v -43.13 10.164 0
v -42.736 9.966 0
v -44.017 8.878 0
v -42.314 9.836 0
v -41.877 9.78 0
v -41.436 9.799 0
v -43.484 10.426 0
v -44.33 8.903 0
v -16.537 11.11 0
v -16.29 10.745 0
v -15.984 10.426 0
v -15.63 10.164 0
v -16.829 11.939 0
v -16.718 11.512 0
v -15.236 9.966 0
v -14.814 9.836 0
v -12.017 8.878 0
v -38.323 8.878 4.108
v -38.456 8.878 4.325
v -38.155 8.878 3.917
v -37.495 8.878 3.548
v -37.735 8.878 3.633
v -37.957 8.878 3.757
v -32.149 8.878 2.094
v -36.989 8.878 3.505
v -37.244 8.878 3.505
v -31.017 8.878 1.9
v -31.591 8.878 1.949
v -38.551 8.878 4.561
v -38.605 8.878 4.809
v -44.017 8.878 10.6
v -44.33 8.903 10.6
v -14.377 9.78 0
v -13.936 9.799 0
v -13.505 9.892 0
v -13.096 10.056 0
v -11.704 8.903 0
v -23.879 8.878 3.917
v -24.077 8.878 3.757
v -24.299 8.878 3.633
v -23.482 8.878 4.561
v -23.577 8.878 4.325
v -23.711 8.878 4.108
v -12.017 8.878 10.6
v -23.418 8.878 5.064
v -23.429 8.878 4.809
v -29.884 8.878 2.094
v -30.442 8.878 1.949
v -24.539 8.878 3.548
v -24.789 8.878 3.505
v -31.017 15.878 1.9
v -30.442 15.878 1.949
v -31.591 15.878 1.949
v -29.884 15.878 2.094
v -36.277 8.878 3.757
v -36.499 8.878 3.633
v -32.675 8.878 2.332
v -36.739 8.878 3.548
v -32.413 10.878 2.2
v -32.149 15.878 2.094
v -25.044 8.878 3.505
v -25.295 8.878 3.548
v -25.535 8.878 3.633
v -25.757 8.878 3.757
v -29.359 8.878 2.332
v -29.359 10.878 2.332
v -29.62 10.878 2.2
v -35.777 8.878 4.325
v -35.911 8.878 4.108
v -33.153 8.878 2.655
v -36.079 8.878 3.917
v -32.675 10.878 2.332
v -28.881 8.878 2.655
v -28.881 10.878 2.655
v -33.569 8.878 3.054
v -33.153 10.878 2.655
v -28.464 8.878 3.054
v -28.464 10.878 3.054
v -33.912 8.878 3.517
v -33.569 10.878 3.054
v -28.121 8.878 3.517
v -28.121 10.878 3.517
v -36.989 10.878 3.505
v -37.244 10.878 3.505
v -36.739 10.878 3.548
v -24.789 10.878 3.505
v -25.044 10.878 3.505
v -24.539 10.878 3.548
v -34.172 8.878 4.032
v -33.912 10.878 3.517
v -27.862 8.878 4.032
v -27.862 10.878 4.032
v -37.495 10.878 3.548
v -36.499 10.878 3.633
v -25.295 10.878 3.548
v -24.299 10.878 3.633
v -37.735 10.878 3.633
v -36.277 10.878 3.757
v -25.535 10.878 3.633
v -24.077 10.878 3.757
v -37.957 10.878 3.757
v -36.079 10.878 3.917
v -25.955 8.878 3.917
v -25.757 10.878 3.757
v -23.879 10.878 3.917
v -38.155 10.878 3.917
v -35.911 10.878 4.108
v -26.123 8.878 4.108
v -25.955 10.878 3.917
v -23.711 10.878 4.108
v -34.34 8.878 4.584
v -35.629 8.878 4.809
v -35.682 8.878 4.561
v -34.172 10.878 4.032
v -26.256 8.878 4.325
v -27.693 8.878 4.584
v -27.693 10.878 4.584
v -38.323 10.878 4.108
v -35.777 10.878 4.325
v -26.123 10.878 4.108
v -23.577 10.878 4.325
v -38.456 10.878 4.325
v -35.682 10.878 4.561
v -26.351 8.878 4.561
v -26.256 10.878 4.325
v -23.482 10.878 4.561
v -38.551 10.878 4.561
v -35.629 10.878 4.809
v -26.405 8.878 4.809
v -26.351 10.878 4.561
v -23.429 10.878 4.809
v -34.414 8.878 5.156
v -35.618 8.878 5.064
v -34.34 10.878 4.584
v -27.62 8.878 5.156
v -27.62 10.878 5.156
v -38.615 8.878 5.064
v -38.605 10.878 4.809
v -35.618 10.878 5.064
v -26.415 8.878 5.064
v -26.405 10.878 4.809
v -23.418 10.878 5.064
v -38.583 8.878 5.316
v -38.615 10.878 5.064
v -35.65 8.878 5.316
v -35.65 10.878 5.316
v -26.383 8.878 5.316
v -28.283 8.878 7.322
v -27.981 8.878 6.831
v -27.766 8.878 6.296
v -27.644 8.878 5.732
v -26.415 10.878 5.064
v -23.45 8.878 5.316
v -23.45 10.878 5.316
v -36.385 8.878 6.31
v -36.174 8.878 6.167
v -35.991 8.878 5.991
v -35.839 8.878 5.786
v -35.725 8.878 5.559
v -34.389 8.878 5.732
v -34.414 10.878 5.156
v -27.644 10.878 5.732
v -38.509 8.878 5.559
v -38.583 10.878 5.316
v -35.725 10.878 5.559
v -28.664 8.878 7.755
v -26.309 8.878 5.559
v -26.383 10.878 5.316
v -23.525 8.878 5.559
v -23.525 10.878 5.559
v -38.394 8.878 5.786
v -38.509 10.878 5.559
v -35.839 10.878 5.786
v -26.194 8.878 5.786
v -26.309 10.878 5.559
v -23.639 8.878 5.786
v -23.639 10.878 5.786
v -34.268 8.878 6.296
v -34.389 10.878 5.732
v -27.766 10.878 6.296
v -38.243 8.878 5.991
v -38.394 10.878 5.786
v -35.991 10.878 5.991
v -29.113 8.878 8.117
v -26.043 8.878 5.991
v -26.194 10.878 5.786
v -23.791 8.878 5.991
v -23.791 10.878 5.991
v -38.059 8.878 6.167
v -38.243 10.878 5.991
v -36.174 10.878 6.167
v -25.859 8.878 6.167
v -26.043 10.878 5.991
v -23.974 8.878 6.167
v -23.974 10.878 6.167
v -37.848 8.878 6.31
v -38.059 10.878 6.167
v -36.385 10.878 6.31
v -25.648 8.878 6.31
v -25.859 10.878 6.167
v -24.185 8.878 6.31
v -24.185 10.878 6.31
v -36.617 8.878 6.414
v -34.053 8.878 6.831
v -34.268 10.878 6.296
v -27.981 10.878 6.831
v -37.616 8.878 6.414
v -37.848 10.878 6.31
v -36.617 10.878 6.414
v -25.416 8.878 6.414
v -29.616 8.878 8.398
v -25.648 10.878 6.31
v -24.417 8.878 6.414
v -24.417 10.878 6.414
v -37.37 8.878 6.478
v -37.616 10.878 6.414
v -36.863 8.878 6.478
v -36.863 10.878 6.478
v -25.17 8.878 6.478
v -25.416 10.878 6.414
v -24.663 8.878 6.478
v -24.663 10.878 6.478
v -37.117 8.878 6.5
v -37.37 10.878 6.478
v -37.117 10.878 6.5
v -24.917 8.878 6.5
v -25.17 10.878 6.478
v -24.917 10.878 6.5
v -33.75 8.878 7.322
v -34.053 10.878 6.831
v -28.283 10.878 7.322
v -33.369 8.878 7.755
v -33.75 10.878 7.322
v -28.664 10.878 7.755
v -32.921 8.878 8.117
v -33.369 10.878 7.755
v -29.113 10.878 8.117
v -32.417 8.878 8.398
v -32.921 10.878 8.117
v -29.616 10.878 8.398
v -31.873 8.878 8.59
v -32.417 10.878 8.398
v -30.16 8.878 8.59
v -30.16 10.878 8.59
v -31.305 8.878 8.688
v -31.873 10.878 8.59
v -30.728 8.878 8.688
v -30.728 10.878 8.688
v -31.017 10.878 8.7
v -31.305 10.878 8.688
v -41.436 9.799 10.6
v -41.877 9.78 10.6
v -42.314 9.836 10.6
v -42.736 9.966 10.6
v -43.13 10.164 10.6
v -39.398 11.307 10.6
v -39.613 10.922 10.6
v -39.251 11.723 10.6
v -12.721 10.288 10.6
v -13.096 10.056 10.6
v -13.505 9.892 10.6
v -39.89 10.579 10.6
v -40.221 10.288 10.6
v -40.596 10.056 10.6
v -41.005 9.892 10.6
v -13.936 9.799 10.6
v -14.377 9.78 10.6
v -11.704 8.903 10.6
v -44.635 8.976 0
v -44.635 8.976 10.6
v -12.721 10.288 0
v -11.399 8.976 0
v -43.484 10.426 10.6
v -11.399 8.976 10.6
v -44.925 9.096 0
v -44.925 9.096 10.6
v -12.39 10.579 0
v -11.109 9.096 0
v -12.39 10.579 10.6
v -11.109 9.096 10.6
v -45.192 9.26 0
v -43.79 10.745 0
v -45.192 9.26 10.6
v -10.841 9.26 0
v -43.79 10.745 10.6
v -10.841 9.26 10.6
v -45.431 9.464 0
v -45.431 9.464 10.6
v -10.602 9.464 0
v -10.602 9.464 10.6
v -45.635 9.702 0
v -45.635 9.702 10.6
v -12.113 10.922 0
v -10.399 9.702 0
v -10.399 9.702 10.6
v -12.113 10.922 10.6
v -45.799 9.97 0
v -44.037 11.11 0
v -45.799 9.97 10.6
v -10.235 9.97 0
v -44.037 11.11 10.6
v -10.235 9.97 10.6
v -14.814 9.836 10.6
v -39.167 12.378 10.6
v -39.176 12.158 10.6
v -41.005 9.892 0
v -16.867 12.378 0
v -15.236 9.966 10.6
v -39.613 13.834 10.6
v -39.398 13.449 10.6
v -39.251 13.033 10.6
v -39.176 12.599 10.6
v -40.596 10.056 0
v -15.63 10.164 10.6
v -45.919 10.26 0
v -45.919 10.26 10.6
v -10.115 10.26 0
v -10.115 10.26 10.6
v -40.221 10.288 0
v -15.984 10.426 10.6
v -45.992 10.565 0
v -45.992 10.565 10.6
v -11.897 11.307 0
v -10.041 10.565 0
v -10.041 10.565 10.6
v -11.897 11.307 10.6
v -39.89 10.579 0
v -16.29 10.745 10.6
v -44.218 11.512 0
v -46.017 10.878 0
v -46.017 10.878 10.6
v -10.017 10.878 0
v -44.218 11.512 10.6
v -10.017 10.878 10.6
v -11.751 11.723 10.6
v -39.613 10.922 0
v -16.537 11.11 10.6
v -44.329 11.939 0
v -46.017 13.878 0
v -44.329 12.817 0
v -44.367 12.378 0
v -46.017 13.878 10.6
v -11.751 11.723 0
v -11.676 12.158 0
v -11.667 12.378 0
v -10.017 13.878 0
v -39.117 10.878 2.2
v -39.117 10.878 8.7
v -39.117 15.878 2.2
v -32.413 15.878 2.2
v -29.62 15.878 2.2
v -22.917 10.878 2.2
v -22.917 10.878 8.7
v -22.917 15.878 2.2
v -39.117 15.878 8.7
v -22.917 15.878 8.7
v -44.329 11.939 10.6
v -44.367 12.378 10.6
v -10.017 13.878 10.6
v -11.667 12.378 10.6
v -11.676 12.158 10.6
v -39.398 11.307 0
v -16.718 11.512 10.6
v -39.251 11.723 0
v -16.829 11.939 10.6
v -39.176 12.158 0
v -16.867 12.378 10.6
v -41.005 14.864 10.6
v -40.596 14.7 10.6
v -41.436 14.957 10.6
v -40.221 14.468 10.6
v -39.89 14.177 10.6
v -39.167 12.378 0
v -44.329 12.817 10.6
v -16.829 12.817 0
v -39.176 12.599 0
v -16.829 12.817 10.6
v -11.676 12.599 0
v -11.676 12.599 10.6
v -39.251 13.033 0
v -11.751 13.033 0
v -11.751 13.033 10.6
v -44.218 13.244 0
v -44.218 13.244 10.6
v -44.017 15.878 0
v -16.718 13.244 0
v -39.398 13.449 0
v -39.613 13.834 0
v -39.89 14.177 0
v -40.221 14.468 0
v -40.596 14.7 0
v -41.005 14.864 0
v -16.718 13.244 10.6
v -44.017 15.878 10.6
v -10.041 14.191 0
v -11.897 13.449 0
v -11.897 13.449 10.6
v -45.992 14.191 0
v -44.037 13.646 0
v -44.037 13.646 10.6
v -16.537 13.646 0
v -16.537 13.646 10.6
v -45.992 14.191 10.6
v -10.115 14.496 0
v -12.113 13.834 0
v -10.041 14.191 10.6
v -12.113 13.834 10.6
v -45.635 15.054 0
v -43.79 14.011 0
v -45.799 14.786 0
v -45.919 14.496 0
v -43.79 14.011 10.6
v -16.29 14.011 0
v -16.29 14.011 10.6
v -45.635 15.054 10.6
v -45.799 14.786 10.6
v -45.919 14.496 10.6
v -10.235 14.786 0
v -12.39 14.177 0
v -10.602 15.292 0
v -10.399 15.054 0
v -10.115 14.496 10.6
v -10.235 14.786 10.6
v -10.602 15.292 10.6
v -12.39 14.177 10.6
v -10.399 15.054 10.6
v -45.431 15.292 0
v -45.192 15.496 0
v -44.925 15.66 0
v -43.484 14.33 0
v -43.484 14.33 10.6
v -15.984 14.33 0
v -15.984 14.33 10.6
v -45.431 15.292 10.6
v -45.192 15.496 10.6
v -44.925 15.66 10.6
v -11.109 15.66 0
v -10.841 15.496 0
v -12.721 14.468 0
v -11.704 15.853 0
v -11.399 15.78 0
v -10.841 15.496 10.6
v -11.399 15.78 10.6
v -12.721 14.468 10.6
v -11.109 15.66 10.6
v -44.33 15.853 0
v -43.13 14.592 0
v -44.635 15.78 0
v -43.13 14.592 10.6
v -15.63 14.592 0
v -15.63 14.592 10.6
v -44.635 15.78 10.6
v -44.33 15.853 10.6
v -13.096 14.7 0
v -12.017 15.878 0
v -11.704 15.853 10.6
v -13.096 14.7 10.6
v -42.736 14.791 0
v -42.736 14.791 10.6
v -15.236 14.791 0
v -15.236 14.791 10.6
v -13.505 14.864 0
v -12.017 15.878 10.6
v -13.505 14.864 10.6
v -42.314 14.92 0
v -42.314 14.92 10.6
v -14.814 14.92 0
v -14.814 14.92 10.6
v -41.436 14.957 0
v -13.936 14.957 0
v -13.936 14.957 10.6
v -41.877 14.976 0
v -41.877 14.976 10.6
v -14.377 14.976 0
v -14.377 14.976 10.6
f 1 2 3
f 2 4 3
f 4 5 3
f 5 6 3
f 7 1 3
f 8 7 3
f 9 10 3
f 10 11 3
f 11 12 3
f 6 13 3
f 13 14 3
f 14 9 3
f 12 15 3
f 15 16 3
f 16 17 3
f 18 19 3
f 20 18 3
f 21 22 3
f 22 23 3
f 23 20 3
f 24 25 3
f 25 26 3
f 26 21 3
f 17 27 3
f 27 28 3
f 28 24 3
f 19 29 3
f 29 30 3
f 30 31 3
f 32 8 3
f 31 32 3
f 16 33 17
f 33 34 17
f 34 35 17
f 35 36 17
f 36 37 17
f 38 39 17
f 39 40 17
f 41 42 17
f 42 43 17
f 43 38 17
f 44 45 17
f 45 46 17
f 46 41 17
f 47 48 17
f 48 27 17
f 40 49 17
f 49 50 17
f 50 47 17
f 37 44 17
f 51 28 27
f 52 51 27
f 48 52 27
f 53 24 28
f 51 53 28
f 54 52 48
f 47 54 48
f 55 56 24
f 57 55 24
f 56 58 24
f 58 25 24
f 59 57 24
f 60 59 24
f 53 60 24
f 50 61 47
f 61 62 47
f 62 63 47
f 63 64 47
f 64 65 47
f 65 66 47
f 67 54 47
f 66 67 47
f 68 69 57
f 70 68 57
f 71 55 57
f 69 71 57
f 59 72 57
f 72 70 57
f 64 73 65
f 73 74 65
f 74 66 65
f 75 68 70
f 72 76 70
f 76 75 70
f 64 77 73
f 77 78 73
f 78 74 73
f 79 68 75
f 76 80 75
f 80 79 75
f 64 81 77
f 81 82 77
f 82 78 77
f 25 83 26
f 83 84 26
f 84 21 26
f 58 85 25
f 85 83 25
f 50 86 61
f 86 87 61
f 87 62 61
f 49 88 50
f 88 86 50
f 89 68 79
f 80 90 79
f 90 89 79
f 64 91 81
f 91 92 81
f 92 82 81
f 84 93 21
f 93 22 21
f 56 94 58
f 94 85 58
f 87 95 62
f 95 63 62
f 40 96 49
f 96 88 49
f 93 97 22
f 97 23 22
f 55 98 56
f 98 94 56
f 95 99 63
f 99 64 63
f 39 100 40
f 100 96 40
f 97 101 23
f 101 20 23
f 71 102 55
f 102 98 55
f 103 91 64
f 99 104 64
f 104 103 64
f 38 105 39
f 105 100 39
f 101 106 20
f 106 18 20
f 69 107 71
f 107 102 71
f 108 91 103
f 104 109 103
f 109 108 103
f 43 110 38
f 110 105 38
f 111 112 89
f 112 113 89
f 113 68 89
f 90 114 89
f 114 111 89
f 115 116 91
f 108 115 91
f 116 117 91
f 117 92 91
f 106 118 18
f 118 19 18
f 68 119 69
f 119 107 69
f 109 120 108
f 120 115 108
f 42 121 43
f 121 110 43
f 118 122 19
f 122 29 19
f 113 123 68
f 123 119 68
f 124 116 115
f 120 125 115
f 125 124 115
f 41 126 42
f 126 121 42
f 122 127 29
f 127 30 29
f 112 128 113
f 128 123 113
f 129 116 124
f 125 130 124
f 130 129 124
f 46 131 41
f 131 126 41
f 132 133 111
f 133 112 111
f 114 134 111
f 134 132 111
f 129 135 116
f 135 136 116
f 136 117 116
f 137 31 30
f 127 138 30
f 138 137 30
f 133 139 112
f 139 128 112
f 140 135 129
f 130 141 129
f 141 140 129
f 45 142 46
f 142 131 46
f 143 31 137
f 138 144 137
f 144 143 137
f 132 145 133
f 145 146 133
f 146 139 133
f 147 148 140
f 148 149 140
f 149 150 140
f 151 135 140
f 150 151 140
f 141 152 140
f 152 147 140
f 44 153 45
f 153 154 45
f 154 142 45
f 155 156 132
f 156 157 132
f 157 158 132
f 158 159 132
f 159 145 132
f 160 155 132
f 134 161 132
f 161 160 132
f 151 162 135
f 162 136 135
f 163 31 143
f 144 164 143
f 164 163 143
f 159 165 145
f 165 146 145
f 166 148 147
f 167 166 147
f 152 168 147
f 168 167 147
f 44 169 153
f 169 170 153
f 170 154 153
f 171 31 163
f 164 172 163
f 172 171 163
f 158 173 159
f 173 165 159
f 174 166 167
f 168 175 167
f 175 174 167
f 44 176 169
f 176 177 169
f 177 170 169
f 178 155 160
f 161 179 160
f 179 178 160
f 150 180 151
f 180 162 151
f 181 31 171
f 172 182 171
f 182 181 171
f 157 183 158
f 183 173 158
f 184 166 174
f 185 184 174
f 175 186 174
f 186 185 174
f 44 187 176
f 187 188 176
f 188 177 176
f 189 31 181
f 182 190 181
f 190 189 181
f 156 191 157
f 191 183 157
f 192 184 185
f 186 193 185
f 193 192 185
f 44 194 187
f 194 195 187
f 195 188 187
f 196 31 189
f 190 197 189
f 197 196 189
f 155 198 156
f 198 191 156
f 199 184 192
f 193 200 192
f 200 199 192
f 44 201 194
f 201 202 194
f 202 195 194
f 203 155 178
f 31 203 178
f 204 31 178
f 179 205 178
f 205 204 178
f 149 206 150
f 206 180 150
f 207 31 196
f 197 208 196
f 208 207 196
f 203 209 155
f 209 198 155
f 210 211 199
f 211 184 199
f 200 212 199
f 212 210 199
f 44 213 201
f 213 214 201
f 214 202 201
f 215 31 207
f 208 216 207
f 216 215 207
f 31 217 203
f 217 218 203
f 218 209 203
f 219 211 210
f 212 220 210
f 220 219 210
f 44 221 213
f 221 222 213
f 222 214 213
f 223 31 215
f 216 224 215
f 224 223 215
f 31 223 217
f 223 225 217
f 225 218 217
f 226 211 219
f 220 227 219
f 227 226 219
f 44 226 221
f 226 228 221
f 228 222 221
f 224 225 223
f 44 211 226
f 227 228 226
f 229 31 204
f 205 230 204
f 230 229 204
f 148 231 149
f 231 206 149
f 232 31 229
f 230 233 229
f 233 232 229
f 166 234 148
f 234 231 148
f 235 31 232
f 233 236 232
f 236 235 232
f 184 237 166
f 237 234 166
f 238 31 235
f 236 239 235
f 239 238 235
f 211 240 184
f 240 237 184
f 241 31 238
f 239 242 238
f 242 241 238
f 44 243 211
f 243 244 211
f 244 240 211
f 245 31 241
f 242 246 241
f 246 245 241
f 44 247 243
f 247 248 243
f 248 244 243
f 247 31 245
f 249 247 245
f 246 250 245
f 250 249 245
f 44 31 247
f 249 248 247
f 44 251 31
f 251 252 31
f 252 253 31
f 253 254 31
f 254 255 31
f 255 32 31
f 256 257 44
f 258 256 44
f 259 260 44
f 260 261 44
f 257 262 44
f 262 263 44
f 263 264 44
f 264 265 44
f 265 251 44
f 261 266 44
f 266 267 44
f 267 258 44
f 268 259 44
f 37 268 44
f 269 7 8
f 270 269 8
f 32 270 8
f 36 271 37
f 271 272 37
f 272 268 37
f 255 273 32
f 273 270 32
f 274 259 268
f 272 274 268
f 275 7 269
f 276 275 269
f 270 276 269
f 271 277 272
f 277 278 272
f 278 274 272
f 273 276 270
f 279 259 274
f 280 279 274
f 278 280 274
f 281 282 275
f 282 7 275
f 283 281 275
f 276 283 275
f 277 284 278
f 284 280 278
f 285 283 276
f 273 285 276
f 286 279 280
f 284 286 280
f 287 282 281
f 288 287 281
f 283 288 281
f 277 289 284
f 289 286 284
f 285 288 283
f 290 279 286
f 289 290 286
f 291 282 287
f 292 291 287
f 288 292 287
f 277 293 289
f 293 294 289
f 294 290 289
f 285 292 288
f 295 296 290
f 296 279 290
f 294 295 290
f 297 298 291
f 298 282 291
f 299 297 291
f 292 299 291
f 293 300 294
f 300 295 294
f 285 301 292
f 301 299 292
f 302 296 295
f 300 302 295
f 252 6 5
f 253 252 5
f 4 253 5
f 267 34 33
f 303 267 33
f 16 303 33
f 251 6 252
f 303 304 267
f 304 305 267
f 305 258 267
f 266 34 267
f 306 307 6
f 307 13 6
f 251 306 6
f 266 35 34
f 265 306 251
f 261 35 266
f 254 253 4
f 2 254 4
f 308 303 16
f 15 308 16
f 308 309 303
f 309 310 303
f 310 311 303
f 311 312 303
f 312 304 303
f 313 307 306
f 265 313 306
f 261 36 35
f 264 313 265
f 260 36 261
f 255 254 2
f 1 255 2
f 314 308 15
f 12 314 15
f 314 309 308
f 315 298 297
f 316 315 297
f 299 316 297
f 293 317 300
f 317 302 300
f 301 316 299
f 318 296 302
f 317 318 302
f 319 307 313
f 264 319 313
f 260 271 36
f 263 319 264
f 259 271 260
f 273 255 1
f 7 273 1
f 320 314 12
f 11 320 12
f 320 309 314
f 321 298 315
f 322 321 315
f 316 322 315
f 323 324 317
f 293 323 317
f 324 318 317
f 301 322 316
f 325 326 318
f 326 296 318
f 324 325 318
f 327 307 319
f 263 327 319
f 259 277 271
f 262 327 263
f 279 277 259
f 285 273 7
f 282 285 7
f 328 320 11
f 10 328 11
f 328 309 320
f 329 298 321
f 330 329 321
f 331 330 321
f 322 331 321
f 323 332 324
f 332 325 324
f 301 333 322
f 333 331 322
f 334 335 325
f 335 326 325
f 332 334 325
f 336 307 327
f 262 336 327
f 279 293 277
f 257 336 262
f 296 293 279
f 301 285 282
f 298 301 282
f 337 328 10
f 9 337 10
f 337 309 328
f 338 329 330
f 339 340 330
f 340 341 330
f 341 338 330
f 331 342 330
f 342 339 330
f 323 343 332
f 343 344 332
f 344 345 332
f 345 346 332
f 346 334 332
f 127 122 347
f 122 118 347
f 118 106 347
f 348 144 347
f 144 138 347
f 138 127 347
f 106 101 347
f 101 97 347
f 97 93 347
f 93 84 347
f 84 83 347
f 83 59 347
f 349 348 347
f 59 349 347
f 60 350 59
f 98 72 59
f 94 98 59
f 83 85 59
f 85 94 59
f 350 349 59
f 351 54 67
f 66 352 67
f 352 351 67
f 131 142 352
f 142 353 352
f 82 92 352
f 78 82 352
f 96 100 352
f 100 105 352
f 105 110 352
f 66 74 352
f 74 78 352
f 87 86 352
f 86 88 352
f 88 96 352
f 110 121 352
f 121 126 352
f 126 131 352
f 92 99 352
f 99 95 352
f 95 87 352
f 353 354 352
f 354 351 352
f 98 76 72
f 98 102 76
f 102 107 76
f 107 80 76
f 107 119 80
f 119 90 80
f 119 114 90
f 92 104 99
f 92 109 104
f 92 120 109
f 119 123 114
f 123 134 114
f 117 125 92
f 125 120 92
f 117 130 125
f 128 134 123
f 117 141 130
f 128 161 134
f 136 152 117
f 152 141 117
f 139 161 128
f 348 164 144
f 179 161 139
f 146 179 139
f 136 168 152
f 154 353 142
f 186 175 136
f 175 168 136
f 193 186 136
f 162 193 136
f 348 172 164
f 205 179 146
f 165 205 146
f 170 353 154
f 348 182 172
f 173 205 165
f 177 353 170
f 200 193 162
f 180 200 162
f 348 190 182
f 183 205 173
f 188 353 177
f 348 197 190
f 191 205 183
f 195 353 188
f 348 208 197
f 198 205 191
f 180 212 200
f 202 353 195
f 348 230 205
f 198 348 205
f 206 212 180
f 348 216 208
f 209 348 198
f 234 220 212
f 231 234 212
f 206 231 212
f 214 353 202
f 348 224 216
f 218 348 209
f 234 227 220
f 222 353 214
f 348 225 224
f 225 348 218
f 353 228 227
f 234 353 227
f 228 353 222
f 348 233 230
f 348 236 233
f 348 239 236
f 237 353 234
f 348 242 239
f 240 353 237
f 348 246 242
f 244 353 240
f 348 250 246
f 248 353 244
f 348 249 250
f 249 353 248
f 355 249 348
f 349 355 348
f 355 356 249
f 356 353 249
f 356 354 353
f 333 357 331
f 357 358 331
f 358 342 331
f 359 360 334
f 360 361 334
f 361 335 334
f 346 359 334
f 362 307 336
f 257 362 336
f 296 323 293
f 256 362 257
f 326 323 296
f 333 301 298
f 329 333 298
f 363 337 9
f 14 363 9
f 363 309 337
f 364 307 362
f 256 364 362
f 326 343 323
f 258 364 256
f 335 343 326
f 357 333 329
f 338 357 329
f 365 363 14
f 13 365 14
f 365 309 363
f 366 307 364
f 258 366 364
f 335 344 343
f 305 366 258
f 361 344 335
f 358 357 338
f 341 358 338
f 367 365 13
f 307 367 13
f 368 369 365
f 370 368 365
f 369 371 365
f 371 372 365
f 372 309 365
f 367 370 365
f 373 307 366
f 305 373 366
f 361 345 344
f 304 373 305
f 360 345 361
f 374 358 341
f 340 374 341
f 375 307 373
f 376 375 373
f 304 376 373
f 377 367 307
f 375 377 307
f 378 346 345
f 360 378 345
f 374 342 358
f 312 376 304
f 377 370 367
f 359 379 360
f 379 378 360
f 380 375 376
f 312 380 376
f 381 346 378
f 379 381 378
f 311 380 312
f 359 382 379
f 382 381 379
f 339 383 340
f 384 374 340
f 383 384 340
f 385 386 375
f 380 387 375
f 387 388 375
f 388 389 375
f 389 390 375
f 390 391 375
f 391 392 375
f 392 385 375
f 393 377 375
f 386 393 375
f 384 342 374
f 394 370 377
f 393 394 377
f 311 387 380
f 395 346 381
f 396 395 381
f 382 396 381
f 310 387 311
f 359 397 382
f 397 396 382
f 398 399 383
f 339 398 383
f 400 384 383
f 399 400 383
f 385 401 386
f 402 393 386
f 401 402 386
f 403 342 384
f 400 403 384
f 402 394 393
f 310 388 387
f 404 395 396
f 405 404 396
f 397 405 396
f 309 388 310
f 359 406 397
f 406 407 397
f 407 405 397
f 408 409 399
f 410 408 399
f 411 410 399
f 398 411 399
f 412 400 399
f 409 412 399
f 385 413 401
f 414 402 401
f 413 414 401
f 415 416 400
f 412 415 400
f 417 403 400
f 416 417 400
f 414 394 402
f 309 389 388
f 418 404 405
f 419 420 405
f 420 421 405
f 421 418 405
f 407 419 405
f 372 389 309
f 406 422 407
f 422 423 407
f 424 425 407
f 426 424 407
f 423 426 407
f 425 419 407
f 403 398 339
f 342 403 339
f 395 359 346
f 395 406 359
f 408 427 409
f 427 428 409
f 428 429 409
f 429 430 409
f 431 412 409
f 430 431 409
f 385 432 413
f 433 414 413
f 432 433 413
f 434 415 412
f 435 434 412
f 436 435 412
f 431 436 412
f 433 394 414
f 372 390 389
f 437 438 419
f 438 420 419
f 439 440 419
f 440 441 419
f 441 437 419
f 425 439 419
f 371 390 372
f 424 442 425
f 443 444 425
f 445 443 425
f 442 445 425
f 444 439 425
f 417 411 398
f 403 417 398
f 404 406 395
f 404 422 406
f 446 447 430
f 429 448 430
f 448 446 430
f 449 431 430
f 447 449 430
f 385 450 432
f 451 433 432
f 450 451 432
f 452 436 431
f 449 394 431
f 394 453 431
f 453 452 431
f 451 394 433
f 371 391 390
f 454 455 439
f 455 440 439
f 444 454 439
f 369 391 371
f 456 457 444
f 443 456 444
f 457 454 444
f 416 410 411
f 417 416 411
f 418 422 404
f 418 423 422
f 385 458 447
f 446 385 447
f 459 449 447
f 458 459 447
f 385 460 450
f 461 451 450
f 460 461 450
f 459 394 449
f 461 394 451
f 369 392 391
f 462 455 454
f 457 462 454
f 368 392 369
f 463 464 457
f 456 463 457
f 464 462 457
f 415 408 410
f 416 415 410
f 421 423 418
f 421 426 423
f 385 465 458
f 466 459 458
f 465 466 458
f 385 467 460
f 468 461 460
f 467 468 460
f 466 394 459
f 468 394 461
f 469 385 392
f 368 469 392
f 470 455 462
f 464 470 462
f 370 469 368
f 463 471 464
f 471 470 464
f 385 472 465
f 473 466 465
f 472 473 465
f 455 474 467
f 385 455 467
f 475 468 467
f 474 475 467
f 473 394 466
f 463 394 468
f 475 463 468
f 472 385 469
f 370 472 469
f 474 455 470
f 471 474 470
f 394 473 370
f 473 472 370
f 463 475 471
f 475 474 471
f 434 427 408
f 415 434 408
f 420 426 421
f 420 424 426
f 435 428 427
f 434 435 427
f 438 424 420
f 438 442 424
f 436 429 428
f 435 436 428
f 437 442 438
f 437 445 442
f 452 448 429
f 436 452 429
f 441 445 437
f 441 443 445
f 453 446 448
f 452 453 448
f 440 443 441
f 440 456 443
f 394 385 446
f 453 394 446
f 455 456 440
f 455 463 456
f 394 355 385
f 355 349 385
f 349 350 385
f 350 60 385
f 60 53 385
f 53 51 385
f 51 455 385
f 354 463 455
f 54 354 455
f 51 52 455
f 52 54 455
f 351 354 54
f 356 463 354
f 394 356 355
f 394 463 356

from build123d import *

# Parameters (mm, degrees)
CROQUIS1_W              = 36
CROQUIS1_H              = 7
CROQUIS1_R              = 2.6
SALIENTE_EXTRUIR1_DEPTH = 10.6
CROQUIS5_R              = 3.4
CORTAR_EXTRUIR4_DEPTH   = 7
REDONDEO1_R             = 2
CROQUIS7_W              = 16.2
CROQUIS7_H              = 6.4
CORTAR_EXTRUIR5_DEPTH   = 5
CROQUIS8_R              = 1.5
CORTAR_EXTRUIR6_DEPTH   = 2
CROQUIS9_W              = 16.2
CROQUIS9_H              = 6.2
CORTAR_EXTRUIR7_DEPTH   = 5


with BuildPart() as part:
    # Croquis1 → Saliente-Extruir1 (new body)
    with BuildSketch(Plane.XY):
        with Locations((-28.016694491, 12.37804878)):
            Rectangle(CROQUIS1_W, CROQUIS1_H)
        with Locations((-41.766694491, 12.37804878)):
            Circle(CROQUIS1_R, mode=Mode.SUBTRACT)
        with Locations((-14.266694491, 12.37804878)):
            Circle(CROQUIS1_R, mode=Mode.SUBTRACT)
    extrude(amount=SALIENTE_EXTRUIR1_DEPTH)

    # Croquis5 → Cortar-Extruir4 (cut)
    with BuildSketch(Plane.XZ.offset(-8.87804878)):
        with Locations(Location((-31.016694491, 5.3, 0), (0, 0, 270))):
            Circle(CROQUIS5_R)
    extrude(amount=-CORTAR_EXTRUIR4_DEPTH, mode=Mode.SUBTRACT)

    # Redondeo1
    redondeo1_edges = [part.edges().sort_by_distance(p)[0] for p in [
        (-46.016694491, 15.87804878, 5.3),
        (-10.016694491, 15.87804878, 5.3),
        (-10.016694491, 8.87804878, 5.3),
        (-46.016694491, 8.87804878, 5.3),
    ]]
    fillet(redondeo1_edges, radius=REDONDEO1_R)

    # Croquis7 → Cortar-Extruir5 (cut)
    with BuildSketch(Plane(origin=(0, 15.87804878, 0), x_dir=(1, 0, 0), z_dir=(0, 1, 0))):
        with Locations((-31.016694491, -5.5)):
            Rectangle(CROQUIS7_W, CROQUIS7_H)
    extrude(amount=-CORTAR_EXTRUIR5_DEPTH, mode=Mode.SUBTRACT)

    # Croquis8 → Cortar-Extruir6 (cut)
    with BuildSketch(Plane(origin=(0, 10.87804878, 0), x_dir=(1, 0, 0), z_dir=(0, 1, 0))):
        with Locations(Location((-24.916694491, -5, 0), (0, 0, 270))):
            Circle(CROQUIS8_R)
        with Locations(Location((-37.116694491, -5, 0), (0, 0, 270))):
            Circle(CROQUIS8_R)
    extrude(amount=-CORTAR_EXTRUIR6_DEPTH, mode=Mode.SUBTRACT)

    # Croquis9 → Cortar-Extruir7 (cut)
    with BuildSketch(Plane(origin=(0, 15.87804878, 0), x_dir=(1, 0, 0), z_dir=(0, 1, 0))):
        with Locations((-31.016694491, -5.3)):
            Rectangle(CROQUIS9_W, CROQUIS9_H)
    extrude(amount=-CORTAR_EXTRUIR7_DEPTH, mode=Mode.SUBTRACT)


solid = part.part
